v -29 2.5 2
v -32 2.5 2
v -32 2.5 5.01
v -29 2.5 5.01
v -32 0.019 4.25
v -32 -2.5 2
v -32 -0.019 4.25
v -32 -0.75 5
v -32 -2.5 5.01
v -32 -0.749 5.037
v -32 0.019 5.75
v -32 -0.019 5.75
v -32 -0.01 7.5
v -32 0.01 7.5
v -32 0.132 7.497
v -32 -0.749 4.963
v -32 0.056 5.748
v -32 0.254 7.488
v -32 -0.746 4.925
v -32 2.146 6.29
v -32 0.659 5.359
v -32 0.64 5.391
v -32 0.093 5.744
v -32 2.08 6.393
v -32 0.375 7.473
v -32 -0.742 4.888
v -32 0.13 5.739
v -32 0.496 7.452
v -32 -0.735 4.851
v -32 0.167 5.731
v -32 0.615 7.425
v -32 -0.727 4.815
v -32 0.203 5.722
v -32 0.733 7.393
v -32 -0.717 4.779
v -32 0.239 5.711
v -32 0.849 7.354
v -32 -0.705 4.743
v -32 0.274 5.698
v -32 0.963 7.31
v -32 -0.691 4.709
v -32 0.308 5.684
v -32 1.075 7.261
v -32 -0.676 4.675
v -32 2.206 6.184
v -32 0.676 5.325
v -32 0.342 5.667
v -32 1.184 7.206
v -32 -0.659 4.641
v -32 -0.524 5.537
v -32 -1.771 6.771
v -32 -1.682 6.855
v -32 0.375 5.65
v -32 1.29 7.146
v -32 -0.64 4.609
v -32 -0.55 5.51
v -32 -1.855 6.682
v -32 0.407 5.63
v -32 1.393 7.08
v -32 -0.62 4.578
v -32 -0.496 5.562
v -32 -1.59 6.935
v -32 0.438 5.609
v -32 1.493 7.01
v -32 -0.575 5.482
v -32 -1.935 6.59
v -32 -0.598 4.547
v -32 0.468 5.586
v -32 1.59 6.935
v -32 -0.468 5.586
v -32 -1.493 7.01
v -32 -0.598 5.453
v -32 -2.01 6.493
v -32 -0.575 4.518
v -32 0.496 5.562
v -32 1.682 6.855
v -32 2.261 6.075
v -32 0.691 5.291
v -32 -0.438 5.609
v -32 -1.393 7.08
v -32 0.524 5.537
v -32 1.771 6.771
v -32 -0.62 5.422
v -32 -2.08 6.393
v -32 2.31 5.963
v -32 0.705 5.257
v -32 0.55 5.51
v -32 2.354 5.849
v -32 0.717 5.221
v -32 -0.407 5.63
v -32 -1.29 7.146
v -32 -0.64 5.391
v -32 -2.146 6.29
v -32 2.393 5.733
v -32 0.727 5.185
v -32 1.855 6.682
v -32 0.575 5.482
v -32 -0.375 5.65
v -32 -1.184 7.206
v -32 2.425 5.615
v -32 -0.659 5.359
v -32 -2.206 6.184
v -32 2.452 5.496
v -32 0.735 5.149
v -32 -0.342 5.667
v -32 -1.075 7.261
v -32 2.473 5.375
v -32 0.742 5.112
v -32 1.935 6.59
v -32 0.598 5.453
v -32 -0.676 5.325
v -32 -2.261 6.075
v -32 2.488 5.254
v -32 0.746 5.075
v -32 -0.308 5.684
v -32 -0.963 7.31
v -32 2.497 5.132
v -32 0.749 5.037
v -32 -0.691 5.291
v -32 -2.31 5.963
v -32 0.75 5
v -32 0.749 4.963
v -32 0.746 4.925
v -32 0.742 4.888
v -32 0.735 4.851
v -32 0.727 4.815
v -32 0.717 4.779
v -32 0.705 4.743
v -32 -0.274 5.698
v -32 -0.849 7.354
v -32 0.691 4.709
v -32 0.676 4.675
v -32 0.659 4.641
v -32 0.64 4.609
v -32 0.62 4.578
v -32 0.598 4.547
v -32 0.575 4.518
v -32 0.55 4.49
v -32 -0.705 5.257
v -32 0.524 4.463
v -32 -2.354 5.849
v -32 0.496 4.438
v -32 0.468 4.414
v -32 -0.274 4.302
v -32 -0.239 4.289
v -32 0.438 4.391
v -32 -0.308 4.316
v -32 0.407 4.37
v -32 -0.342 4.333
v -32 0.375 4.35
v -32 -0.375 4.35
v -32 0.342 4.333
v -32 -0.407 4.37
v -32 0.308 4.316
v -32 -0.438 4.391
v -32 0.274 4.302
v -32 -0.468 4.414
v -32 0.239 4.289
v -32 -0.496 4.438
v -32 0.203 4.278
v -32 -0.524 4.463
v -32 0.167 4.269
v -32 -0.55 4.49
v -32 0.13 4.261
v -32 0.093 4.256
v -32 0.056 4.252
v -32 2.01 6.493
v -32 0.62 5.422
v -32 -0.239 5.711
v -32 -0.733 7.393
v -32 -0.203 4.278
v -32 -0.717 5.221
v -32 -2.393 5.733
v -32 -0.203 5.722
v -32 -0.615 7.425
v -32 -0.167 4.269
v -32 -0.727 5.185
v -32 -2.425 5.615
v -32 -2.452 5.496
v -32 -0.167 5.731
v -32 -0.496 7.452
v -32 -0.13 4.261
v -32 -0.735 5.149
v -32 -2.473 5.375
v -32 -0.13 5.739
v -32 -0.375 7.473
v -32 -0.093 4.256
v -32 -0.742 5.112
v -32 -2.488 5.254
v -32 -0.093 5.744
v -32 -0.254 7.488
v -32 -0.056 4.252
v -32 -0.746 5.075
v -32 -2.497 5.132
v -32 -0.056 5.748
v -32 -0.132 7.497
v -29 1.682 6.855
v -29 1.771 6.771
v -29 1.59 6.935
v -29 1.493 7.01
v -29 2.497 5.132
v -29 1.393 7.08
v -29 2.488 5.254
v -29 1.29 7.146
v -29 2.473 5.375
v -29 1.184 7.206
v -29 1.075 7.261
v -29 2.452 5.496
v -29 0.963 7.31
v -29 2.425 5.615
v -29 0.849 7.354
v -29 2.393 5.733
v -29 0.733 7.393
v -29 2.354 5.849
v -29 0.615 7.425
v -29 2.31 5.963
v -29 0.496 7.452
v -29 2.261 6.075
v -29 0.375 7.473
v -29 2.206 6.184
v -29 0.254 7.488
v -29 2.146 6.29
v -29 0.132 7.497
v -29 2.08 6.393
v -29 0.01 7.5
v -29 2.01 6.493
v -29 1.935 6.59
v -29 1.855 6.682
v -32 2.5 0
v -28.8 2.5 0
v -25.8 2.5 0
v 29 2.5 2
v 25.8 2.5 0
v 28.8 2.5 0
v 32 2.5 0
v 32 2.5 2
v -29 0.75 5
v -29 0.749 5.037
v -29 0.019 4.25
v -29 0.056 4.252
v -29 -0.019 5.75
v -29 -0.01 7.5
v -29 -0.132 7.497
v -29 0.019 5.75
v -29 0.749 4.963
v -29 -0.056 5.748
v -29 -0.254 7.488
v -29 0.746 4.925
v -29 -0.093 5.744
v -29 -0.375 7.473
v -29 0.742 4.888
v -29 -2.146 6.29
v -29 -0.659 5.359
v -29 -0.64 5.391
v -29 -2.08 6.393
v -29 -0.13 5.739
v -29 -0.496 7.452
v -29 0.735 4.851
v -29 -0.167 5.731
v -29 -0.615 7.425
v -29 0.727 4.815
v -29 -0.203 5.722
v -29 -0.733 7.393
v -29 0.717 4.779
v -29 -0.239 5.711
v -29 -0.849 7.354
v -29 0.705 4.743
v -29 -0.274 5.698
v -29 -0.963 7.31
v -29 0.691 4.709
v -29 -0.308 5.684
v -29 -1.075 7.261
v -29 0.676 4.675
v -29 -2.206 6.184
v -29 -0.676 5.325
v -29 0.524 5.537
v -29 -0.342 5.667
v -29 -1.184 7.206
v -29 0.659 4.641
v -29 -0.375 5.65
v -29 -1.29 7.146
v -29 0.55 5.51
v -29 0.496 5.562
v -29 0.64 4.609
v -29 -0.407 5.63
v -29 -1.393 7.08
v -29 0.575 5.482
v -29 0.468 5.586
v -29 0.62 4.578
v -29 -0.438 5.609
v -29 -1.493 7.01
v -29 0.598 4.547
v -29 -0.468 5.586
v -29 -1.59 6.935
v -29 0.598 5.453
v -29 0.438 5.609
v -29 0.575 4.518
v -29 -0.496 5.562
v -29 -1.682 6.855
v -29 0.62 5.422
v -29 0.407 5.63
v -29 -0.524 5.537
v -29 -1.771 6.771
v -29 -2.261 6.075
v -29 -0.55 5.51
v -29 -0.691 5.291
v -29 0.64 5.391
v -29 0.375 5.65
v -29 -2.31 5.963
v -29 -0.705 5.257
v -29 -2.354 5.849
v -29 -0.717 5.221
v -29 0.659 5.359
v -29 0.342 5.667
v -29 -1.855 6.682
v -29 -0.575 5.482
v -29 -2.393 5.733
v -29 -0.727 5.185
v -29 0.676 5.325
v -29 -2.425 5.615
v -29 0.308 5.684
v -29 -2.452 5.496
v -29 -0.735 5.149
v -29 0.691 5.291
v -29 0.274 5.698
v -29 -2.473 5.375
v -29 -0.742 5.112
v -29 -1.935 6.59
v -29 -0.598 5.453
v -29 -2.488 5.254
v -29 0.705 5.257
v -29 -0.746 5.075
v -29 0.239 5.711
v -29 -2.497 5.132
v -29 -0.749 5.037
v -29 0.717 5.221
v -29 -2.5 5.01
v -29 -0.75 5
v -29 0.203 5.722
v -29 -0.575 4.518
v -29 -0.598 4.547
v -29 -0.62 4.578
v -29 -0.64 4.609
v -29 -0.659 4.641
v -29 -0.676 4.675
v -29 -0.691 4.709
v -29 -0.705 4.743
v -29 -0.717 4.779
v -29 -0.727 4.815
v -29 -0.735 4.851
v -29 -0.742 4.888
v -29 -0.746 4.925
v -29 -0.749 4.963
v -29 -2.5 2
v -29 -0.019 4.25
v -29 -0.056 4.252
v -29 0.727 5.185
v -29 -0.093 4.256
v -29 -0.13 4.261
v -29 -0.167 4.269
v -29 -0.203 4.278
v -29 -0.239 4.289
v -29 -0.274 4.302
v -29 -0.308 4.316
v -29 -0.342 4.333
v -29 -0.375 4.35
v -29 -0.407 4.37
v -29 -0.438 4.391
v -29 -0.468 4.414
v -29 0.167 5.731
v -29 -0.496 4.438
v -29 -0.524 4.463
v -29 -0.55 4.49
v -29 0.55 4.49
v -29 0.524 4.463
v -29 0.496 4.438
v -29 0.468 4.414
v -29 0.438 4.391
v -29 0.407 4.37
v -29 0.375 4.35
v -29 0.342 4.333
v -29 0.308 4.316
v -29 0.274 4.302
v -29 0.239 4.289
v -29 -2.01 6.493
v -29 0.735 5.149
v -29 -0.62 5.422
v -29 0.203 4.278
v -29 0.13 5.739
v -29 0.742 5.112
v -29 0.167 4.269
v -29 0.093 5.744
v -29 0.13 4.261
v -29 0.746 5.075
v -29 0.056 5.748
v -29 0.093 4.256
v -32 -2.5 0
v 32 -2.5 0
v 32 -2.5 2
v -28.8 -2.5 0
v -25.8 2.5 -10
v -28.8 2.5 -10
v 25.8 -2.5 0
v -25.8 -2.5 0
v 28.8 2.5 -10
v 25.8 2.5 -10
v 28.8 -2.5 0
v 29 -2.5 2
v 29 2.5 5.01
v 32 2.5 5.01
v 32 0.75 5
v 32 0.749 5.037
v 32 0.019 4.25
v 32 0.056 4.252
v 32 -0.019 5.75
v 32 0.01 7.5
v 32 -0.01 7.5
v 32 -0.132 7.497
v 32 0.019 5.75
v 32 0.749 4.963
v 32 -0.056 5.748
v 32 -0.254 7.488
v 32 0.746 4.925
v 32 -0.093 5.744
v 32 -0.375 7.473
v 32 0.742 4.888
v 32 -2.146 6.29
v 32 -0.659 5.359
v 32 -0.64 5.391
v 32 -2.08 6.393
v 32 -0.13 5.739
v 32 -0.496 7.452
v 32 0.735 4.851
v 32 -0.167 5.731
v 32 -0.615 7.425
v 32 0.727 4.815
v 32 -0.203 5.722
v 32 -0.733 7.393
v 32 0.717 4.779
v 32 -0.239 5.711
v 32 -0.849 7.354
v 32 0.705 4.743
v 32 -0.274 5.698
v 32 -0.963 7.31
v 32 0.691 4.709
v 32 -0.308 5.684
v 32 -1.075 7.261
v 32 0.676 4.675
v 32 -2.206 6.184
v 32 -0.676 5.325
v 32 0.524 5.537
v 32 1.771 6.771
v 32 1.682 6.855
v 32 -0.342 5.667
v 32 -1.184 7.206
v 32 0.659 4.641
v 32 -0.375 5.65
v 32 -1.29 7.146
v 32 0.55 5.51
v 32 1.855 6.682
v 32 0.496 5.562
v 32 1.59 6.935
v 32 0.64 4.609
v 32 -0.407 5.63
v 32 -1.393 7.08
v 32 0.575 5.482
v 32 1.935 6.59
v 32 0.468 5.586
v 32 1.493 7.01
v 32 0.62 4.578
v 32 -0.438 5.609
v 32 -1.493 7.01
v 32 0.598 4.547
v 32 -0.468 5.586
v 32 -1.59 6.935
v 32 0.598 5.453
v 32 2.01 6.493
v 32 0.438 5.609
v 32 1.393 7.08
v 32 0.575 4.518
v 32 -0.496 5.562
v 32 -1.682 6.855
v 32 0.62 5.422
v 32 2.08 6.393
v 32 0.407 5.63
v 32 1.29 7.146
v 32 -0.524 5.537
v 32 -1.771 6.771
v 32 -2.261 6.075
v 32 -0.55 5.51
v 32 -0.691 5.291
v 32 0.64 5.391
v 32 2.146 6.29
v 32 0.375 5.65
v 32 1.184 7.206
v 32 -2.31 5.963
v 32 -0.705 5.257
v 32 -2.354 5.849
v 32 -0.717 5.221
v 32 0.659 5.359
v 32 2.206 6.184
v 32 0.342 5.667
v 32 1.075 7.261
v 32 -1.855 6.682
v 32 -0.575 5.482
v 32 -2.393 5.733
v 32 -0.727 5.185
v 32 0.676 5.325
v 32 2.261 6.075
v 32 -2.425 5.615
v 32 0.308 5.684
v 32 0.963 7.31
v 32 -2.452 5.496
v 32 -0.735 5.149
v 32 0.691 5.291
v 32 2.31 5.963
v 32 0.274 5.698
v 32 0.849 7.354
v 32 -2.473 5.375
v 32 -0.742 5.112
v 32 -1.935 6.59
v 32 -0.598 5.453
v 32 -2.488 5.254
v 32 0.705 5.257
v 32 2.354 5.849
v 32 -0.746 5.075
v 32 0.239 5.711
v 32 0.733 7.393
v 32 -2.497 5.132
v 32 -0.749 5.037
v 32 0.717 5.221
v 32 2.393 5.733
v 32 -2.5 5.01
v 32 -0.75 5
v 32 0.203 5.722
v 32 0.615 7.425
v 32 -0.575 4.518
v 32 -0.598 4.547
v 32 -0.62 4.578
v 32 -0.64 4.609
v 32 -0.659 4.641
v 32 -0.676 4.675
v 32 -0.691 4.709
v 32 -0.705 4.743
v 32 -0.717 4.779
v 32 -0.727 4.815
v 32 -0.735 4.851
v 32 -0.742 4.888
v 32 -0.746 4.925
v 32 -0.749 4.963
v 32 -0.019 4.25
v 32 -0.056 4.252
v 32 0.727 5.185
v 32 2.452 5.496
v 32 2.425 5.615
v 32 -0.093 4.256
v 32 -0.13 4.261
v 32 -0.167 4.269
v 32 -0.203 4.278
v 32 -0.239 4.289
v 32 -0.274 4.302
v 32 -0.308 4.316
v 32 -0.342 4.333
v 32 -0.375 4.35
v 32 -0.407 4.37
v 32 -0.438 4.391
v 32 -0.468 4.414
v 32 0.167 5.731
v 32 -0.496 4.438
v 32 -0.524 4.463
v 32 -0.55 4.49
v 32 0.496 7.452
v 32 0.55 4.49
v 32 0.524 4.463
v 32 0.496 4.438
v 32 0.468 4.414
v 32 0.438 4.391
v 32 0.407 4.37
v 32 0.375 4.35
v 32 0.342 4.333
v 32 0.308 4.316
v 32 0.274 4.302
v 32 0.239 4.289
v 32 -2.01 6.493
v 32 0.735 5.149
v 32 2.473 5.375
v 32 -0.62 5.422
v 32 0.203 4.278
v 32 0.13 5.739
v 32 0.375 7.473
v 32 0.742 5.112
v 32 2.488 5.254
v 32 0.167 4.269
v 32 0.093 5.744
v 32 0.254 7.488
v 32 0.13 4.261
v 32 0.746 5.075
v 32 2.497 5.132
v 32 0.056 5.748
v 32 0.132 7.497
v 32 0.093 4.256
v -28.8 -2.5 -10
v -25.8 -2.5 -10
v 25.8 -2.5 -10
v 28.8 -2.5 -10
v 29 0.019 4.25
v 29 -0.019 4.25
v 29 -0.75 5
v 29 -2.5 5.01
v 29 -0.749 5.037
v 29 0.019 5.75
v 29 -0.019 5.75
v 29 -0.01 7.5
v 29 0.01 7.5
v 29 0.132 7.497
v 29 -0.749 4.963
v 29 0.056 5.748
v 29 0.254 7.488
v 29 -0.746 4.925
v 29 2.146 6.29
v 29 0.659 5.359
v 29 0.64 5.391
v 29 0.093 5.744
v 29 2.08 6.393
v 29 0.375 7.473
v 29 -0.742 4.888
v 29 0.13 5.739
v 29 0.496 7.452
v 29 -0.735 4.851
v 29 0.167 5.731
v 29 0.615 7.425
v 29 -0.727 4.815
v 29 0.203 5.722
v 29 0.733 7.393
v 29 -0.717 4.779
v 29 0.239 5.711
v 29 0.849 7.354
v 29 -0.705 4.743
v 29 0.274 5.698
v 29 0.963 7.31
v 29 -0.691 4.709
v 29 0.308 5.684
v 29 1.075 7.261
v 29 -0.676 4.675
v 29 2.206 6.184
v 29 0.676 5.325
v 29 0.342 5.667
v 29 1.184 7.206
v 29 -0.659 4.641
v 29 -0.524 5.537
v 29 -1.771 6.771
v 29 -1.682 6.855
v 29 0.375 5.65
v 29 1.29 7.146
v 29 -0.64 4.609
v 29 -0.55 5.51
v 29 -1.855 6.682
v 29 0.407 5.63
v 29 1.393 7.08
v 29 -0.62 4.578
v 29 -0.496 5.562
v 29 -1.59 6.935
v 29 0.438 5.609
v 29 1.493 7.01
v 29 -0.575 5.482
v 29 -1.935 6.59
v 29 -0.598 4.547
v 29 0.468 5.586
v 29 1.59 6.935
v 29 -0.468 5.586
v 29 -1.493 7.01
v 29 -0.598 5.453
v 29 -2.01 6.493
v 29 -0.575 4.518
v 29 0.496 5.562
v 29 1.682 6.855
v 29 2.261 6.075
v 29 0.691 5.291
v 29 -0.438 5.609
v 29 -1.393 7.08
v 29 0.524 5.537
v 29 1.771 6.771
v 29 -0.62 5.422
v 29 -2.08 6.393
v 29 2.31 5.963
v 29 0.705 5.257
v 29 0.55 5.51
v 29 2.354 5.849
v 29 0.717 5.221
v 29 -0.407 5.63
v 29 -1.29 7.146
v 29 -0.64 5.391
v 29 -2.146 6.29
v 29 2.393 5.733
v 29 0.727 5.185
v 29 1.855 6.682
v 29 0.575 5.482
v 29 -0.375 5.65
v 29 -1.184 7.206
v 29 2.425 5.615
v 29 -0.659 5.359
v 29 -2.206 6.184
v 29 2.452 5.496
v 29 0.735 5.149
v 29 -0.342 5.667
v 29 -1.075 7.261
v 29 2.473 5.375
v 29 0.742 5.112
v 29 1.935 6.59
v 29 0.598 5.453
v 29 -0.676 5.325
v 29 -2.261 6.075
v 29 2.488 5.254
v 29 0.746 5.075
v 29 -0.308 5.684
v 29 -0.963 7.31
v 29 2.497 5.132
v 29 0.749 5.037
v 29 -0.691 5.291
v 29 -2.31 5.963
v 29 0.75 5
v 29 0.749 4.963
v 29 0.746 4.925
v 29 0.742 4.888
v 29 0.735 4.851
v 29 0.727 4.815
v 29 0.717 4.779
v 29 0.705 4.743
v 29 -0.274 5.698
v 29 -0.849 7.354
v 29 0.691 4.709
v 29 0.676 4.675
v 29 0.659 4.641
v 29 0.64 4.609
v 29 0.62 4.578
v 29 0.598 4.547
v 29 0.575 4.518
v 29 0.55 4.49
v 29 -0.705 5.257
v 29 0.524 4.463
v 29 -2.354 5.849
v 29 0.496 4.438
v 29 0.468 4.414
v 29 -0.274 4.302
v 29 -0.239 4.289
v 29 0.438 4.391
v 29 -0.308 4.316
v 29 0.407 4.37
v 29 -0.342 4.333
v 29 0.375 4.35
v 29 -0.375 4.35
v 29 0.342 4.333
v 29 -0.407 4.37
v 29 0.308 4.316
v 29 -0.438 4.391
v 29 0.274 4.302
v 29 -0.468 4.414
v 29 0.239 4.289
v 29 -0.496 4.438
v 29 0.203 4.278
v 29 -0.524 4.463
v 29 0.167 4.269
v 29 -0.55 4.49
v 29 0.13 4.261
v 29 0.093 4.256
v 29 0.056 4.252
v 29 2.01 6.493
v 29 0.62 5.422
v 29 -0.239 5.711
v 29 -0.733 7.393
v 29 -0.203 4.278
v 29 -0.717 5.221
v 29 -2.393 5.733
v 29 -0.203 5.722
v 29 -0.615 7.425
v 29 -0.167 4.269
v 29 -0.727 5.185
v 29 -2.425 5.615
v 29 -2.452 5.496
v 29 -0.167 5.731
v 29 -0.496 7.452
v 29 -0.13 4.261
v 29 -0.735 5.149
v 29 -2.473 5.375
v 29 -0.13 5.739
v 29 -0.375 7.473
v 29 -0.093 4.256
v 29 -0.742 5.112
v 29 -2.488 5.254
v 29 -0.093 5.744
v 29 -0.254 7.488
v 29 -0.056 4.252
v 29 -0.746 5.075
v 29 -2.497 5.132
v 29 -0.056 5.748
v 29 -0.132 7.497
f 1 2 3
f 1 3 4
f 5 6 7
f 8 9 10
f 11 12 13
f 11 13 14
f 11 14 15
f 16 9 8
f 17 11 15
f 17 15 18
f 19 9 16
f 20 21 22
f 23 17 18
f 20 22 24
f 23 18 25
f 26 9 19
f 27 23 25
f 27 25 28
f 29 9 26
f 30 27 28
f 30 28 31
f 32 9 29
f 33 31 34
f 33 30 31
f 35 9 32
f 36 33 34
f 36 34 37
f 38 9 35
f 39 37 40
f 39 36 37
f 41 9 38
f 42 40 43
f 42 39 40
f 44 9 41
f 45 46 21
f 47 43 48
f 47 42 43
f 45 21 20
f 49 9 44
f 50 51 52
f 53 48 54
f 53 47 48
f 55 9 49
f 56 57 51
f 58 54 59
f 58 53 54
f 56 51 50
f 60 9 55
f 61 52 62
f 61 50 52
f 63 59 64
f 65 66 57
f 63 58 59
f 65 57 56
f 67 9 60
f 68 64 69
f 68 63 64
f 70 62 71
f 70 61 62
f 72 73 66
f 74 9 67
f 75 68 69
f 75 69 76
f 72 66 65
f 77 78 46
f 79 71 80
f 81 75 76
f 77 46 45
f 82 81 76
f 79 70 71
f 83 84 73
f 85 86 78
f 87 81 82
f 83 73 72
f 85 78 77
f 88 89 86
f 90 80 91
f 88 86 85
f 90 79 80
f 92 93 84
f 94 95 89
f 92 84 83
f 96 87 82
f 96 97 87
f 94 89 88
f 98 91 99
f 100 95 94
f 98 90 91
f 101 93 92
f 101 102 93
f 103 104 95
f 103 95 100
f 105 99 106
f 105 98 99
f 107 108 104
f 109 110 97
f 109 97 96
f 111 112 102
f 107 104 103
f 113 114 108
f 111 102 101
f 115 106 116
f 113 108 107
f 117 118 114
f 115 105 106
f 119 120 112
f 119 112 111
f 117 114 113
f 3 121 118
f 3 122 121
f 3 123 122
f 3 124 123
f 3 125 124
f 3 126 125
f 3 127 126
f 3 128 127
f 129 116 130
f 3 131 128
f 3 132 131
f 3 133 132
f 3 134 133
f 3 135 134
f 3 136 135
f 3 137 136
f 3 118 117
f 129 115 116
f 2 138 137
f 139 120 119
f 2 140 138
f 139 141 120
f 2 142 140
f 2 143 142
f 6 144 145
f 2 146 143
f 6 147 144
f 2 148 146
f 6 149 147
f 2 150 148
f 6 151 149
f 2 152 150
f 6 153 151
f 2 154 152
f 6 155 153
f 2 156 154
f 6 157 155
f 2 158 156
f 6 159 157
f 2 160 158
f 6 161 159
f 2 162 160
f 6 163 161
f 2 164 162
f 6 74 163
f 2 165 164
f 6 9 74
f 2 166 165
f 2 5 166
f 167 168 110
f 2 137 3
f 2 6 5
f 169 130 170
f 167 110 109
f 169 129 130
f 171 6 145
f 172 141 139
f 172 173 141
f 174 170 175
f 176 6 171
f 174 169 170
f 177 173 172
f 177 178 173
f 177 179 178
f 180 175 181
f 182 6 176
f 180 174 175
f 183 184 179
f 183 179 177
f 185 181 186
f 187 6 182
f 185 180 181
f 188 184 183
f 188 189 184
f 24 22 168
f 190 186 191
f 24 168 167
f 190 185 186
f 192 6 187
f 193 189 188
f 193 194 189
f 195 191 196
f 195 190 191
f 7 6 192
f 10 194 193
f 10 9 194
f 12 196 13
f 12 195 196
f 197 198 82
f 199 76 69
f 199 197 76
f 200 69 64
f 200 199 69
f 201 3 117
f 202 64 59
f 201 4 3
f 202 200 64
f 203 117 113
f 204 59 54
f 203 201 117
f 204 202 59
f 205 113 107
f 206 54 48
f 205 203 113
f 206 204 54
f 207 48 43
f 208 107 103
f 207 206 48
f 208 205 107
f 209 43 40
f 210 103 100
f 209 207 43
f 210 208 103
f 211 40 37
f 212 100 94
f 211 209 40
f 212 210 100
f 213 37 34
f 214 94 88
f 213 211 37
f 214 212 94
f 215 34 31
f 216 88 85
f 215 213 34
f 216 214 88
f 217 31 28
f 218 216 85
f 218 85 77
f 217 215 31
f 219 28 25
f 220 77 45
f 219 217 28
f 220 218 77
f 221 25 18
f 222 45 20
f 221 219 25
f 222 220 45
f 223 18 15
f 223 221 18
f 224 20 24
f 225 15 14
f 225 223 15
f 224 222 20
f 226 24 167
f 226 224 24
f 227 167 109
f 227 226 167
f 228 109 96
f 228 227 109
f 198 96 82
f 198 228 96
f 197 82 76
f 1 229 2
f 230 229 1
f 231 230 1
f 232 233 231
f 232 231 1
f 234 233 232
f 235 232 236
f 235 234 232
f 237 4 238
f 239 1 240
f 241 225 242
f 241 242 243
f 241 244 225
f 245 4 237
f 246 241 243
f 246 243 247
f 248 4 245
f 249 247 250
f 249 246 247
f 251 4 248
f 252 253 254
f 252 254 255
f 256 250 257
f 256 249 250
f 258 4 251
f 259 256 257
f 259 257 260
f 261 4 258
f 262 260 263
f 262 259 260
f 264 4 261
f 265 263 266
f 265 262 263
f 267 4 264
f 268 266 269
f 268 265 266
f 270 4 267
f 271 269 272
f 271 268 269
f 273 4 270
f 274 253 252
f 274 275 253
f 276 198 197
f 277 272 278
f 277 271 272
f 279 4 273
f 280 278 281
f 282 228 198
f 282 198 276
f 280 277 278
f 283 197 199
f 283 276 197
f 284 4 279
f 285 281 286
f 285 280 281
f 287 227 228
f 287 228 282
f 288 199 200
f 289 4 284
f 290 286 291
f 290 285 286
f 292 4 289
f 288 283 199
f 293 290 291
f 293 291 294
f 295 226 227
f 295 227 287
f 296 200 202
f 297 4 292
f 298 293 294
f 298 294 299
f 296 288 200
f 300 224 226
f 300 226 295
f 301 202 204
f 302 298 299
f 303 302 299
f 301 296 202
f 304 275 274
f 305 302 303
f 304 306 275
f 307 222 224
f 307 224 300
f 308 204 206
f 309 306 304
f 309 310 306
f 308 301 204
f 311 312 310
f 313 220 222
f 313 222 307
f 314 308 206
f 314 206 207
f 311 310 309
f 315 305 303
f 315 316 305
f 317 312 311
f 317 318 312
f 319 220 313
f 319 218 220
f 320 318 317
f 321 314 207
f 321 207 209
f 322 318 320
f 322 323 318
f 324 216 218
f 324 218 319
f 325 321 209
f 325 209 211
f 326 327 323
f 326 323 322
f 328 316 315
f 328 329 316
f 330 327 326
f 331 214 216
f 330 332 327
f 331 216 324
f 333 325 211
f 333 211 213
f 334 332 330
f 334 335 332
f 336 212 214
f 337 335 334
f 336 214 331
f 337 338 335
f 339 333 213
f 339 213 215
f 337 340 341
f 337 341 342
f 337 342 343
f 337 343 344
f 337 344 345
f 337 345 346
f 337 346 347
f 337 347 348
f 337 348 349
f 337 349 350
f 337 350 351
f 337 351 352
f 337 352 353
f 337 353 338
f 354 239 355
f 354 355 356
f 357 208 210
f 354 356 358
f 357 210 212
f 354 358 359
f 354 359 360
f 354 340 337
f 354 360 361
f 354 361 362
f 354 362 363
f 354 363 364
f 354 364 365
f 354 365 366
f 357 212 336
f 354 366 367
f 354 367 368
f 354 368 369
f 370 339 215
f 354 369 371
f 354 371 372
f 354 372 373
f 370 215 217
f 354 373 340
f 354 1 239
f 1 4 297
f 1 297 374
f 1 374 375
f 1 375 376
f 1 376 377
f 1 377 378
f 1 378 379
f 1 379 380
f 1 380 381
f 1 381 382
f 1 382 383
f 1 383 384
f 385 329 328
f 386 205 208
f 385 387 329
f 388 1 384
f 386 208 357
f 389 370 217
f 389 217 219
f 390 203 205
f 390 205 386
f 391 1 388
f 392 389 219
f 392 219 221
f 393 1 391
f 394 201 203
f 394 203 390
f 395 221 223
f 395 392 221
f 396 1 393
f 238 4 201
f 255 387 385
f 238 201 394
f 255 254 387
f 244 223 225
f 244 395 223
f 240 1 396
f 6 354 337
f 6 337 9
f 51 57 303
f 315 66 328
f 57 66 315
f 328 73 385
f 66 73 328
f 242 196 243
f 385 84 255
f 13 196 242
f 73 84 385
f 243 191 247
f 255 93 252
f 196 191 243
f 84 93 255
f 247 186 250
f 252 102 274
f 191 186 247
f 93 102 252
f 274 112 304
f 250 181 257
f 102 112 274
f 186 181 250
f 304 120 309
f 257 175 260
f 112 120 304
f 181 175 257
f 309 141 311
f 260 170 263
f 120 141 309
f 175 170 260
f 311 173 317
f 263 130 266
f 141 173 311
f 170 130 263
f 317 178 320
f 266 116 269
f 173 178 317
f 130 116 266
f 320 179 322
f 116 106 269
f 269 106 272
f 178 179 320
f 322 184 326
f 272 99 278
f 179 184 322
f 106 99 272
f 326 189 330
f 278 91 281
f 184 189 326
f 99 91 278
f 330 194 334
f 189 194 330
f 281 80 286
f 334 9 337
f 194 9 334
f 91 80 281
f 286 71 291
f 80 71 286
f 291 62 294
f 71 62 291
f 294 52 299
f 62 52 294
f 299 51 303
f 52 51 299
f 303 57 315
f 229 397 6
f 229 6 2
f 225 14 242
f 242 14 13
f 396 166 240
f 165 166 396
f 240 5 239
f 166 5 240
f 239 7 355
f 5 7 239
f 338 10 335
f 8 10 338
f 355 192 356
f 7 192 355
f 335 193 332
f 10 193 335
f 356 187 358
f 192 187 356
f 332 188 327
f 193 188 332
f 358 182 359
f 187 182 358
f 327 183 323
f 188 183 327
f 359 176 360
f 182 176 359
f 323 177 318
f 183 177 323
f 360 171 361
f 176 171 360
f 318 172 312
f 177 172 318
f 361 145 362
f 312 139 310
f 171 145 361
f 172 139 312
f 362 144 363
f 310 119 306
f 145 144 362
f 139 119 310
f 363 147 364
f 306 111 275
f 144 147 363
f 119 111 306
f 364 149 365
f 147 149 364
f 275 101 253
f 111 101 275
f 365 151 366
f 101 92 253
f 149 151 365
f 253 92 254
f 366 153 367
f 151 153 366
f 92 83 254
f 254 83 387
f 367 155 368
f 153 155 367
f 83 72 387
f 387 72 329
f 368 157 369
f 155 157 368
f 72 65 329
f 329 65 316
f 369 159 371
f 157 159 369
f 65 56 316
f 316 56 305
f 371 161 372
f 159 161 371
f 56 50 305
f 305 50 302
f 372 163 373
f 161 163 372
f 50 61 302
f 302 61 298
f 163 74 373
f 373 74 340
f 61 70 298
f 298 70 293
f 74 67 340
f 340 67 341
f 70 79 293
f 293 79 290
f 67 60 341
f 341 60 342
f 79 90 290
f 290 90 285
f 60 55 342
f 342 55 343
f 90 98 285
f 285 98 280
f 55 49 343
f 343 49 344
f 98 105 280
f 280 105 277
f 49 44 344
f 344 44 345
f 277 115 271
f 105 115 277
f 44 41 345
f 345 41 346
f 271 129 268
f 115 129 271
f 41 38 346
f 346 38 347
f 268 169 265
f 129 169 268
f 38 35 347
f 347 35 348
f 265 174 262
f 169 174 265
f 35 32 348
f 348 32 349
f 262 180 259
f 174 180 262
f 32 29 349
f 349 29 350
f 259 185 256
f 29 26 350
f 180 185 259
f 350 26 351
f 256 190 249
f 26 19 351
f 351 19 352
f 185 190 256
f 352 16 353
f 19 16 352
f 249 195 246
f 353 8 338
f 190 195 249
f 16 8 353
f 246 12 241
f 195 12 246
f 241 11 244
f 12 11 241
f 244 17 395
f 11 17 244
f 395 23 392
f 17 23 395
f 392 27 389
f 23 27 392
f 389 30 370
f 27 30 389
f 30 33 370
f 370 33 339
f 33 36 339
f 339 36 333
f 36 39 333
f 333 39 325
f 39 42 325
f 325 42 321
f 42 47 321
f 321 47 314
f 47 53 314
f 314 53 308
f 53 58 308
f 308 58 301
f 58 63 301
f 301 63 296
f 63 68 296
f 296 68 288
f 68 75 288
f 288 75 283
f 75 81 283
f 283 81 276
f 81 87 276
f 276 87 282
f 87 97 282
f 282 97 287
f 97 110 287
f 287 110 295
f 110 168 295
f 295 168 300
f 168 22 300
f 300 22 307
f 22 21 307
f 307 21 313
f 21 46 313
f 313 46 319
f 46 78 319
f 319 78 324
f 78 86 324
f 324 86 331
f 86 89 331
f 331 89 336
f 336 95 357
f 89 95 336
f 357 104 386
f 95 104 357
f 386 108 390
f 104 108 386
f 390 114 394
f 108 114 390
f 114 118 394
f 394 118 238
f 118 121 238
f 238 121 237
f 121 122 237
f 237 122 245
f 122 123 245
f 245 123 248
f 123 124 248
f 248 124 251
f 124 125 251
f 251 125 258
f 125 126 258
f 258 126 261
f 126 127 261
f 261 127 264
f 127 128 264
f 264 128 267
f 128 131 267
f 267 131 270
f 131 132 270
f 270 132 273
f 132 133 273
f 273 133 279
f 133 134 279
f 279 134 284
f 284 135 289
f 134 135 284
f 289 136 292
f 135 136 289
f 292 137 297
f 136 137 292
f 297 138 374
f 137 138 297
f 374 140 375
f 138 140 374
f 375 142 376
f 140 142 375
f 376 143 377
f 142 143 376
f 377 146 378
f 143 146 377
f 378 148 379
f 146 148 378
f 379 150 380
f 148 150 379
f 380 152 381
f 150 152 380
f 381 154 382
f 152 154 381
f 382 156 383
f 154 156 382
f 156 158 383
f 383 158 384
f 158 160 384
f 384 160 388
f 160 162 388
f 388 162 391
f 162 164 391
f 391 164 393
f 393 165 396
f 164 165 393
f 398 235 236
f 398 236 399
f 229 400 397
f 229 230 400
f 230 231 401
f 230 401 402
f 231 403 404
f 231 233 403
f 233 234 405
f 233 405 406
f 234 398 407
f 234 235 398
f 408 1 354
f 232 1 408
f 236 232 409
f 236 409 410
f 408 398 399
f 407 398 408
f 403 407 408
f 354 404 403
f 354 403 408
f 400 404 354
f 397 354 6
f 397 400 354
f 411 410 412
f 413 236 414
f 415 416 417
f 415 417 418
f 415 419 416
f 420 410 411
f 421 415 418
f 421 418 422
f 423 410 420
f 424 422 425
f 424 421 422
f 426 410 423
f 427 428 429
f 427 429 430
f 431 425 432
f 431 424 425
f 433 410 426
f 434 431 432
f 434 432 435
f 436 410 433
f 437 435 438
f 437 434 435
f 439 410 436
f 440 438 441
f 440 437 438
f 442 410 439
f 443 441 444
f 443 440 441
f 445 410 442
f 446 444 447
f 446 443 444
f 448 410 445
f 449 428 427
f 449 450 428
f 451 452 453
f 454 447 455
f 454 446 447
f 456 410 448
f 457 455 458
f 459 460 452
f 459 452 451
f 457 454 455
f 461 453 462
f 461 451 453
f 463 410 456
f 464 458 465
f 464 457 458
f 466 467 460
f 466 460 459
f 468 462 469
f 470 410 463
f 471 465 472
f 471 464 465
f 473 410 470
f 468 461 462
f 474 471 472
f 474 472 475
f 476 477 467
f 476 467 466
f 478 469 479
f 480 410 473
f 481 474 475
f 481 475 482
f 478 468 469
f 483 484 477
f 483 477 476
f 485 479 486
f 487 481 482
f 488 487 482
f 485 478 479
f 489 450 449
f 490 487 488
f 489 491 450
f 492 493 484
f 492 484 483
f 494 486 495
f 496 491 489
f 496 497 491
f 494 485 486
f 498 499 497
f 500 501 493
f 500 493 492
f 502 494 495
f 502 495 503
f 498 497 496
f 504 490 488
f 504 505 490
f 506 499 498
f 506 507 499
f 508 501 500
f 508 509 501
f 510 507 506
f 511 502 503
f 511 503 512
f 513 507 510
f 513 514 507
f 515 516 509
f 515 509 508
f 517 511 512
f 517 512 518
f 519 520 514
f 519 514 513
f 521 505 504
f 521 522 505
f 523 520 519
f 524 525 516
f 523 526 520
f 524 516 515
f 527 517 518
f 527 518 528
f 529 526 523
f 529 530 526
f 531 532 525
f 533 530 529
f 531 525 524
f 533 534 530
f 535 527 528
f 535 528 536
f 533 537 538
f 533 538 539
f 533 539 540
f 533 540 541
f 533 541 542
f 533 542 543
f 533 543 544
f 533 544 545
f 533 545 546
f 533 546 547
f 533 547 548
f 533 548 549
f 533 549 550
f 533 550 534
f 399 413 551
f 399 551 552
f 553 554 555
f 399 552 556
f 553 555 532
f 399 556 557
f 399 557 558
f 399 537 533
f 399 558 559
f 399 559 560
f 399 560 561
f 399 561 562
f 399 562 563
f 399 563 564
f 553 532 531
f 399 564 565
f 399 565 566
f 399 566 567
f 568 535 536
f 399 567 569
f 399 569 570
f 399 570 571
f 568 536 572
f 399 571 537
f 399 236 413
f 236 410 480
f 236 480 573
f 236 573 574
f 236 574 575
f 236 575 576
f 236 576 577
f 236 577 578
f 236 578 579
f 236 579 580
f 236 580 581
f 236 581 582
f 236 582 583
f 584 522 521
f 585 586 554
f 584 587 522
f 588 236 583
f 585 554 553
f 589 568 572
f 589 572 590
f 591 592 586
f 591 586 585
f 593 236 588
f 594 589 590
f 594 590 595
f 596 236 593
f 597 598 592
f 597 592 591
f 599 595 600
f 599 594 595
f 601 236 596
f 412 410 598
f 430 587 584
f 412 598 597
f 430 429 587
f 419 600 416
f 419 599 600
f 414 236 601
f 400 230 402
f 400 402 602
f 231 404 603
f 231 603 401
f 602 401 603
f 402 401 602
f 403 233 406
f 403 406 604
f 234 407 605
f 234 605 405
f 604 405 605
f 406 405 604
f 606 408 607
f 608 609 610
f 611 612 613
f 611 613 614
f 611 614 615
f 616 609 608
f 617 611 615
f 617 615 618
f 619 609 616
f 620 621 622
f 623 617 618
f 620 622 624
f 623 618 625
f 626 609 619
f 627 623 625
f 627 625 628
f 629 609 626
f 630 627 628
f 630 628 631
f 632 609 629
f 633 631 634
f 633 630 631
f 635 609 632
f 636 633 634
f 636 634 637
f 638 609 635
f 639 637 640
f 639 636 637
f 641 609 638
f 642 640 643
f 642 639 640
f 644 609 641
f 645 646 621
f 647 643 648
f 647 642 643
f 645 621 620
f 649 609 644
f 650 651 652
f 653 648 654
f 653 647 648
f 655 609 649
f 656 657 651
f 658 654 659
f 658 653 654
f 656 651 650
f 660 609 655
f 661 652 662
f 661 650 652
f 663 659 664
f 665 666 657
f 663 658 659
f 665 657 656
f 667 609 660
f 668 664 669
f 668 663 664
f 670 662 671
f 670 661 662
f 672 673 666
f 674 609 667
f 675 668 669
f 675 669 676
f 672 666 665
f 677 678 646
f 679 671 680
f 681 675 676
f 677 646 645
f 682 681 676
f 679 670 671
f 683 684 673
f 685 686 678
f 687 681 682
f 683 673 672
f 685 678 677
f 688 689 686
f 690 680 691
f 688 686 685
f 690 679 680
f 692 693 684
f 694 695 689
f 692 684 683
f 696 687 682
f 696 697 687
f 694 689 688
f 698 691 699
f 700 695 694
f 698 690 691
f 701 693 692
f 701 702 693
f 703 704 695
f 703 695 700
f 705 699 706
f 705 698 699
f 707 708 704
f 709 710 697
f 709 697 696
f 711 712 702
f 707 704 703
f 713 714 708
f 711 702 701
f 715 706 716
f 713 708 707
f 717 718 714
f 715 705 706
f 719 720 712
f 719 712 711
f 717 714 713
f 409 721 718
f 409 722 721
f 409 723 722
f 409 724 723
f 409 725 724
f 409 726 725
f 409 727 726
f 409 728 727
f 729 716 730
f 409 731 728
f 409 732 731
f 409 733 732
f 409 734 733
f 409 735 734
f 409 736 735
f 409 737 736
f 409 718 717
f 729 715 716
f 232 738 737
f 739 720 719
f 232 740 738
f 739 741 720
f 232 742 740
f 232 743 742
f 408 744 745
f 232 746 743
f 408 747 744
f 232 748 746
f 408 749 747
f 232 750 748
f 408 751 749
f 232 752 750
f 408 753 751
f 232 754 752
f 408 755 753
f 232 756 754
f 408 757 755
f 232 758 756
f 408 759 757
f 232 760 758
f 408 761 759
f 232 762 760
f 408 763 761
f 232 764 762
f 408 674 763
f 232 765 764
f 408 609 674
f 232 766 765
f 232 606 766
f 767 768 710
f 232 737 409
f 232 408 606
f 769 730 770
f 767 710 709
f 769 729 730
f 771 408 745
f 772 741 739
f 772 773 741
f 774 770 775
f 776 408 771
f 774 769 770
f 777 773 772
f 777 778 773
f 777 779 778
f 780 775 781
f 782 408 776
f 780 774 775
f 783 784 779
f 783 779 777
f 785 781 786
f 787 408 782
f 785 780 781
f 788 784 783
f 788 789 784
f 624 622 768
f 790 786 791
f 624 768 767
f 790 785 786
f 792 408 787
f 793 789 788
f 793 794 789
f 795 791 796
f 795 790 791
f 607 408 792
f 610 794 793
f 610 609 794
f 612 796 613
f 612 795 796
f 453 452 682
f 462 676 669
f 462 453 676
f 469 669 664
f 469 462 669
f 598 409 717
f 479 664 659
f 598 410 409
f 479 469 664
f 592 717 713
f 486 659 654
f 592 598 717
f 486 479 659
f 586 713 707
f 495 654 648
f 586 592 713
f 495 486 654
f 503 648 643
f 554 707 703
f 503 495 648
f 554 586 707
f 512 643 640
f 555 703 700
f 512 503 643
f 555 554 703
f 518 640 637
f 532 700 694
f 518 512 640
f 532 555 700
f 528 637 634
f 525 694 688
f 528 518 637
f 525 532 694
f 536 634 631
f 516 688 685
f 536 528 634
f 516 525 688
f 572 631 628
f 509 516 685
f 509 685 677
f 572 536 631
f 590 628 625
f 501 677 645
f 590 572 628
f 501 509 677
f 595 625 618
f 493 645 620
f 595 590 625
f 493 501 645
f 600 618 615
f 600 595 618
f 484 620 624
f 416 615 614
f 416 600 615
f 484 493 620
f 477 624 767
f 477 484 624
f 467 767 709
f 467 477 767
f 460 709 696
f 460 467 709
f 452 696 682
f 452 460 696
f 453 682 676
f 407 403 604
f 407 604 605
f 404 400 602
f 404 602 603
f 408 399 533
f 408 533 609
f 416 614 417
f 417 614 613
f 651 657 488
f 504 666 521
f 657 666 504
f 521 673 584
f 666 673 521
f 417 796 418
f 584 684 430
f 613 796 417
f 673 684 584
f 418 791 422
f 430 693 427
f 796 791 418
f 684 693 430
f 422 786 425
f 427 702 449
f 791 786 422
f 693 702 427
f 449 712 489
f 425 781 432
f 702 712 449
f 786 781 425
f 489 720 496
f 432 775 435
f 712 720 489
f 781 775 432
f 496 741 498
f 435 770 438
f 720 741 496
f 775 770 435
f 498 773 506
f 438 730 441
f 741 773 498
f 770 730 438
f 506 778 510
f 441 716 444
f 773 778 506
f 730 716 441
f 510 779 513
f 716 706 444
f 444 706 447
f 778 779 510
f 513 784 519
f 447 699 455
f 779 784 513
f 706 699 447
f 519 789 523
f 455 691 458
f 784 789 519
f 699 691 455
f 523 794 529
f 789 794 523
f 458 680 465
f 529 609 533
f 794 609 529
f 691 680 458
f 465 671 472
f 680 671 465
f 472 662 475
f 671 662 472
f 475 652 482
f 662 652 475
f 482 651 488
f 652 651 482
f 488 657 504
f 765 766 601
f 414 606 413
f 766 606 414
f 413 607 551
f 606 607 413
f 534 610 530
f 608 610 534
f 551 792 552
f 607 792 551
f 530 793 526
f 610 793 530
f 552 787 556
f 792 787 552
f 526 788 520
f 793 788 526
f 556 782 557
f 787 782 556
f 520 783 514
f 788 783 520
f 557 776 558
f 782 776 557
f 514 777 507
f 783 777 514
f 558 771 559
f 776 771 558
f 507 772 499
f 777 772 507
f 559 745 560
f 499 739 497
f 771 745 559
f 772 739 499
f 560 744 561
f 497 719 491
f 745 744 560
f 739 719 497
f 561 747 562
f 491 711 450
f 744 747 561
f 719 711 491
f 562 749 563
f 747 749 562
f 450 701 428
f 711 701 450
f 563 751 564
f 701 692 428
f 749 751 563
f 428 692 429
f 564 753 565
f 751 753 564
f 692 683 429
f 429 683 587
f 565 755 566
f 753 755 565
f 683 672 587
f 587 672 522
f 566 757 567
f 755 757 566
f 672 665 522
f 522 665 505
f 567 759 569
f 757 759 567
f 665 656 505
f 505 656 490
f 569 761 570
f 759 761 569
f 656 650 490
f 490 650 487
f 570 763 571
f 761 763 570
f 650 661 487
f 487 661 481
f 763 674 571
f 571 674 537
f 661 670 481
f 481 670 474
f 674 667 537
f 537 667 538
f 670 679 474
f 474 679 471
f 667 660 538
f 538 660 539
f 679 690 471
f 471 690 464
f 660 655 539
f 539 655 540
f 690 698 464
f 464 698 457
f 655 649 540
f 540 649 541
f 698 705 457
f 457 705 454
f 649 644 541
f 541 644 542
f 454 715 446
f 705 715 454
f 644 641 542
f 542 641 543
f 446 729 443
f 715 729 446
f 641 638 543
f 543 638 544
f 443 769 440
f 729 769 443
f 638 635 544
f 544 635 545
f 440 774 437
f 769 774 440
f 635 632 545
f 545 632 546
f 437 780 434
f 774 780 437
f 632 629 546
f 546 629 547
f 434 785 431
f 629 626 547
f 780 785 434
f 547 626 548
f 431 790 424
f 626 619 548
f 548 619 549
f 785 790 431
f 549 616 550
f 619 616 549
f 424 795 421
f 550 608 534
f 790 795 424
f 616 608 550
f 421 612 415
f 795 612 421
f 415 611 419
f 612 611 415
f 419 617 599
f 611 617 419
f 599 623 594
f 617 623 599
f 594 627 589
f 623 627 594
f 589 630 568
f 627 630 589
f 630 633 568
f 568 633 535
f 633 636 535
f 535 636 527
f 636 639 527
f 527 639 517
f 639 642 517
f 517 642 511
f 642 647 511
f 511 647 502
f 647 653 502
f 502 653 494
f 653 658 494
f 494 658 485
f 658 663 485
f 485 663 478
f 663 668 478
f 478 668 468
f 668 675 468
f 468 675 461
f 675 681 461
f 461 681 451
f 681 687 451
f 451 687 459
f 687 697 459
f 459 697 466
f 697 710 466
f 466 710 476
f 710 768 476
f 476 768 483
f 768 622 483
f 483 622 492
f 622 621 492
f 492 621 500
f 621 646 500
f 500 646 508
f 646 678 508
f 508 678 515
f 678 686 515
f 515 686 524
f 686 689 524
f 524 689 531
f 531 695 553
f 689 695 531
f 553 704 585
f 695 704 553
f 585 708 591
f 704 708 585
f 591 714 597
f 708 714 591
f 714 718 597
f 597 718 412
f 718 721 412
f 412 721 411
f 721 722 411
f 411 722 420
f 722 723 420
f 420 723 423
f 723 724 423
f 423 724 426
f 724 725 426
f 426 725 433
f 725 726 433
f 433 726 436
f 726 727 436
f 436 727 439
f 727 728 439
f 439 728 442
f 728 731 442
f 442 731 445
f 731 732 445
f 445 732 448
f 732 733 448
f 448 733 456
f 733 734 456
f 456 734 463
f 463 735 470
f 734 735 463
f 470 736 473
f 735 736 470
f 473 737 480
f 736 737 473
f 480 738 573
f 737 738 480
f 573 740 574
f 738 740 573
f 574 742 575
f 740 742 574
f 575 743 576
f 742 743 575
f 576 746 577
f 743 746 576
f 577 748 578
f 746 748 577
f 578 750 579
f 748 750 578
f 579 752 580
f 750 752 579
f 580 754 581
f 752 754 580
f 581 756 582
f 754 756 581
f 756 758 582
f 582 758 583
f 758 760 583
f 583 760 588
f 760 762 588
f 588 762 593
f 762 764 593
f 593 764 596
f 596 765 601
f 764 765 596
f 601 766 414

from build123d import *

# Parameters (mm, degrees)
SKETCH_W     = 64
SKETCH_H     = 5
PAD_DEPTH    = 2
SKETCH001_W  = 3
SKETCH001_H  = 5
PAD001_DEPTH = 5.5
SKETCH003_W  = 3
SKETCH003_H  = 5
PAD002_DEPTH = 10
SKETCH004_R  = 0.75
POCKET_DEPTH = 100
FILLET_R     = 2.49


with BuildPart() as part:
    # Sketch → Pad (new body)
    with BuildSketch(Plane.XY):
        Rectangle(SKETCH_W, SKETCH_H)
    extrude(amount=PAD_DEPTH)

    # Sketch001 (on Face6 of Pad) → Pad001 (join)
    with BuildSketch(Plane.XY.offset(2)):
        with Locations((-30.5, 0)):
            Rectangle(SKETCH001_W, SKETCH001_H)
        with Locations((30.5, 0)):
            Rectangle(SKETCH001_W, SKETCH001_H)
    extrude(amount=PAD001_DEPTH)

    # Sketch003 → Pad002 (join)
    with BuildSketch(Plane(origin=(0, 0, 0), x_dir=(1, 0, 0), z_dir=(0, 0, -1))):
        with Locations((-27.3, 0)):
            Rectangle(SKETCH003_W, SKETCH003_H)
        with Locations((27.3, 0)):
            Rectangle(SKETCH003_W, SKETCH003_H)
    extrude(amount=PAD002_DEPTH)

    # Sketch004 (on Face13 of Pad002) → Pocket (cut)
    with BuildSketch(Plane(origin=(-32, 0, 0), x_dir=(0, -1, 0), z_dir=(-1, 0, 0))):
        with Locations((0, 5)):
            Circle(SKETCH004_R)
    extrude(amount=-POCKET_DEPTH, mode=Mode.SUBTRACT)

    # Fillet
    fillet_edges = [part.edges().sort_by_distance(p)[0] for p in [
        (30.5, -2.5, 7.5),
        (30.5, 2.5, 7.5),
        (-30.5, -2.5, 7.5),
        (-30.5, 2.5, 7.5),
    ]]
    fillet(fillet_edges, radius=FILLET_R)


solid = part.part
